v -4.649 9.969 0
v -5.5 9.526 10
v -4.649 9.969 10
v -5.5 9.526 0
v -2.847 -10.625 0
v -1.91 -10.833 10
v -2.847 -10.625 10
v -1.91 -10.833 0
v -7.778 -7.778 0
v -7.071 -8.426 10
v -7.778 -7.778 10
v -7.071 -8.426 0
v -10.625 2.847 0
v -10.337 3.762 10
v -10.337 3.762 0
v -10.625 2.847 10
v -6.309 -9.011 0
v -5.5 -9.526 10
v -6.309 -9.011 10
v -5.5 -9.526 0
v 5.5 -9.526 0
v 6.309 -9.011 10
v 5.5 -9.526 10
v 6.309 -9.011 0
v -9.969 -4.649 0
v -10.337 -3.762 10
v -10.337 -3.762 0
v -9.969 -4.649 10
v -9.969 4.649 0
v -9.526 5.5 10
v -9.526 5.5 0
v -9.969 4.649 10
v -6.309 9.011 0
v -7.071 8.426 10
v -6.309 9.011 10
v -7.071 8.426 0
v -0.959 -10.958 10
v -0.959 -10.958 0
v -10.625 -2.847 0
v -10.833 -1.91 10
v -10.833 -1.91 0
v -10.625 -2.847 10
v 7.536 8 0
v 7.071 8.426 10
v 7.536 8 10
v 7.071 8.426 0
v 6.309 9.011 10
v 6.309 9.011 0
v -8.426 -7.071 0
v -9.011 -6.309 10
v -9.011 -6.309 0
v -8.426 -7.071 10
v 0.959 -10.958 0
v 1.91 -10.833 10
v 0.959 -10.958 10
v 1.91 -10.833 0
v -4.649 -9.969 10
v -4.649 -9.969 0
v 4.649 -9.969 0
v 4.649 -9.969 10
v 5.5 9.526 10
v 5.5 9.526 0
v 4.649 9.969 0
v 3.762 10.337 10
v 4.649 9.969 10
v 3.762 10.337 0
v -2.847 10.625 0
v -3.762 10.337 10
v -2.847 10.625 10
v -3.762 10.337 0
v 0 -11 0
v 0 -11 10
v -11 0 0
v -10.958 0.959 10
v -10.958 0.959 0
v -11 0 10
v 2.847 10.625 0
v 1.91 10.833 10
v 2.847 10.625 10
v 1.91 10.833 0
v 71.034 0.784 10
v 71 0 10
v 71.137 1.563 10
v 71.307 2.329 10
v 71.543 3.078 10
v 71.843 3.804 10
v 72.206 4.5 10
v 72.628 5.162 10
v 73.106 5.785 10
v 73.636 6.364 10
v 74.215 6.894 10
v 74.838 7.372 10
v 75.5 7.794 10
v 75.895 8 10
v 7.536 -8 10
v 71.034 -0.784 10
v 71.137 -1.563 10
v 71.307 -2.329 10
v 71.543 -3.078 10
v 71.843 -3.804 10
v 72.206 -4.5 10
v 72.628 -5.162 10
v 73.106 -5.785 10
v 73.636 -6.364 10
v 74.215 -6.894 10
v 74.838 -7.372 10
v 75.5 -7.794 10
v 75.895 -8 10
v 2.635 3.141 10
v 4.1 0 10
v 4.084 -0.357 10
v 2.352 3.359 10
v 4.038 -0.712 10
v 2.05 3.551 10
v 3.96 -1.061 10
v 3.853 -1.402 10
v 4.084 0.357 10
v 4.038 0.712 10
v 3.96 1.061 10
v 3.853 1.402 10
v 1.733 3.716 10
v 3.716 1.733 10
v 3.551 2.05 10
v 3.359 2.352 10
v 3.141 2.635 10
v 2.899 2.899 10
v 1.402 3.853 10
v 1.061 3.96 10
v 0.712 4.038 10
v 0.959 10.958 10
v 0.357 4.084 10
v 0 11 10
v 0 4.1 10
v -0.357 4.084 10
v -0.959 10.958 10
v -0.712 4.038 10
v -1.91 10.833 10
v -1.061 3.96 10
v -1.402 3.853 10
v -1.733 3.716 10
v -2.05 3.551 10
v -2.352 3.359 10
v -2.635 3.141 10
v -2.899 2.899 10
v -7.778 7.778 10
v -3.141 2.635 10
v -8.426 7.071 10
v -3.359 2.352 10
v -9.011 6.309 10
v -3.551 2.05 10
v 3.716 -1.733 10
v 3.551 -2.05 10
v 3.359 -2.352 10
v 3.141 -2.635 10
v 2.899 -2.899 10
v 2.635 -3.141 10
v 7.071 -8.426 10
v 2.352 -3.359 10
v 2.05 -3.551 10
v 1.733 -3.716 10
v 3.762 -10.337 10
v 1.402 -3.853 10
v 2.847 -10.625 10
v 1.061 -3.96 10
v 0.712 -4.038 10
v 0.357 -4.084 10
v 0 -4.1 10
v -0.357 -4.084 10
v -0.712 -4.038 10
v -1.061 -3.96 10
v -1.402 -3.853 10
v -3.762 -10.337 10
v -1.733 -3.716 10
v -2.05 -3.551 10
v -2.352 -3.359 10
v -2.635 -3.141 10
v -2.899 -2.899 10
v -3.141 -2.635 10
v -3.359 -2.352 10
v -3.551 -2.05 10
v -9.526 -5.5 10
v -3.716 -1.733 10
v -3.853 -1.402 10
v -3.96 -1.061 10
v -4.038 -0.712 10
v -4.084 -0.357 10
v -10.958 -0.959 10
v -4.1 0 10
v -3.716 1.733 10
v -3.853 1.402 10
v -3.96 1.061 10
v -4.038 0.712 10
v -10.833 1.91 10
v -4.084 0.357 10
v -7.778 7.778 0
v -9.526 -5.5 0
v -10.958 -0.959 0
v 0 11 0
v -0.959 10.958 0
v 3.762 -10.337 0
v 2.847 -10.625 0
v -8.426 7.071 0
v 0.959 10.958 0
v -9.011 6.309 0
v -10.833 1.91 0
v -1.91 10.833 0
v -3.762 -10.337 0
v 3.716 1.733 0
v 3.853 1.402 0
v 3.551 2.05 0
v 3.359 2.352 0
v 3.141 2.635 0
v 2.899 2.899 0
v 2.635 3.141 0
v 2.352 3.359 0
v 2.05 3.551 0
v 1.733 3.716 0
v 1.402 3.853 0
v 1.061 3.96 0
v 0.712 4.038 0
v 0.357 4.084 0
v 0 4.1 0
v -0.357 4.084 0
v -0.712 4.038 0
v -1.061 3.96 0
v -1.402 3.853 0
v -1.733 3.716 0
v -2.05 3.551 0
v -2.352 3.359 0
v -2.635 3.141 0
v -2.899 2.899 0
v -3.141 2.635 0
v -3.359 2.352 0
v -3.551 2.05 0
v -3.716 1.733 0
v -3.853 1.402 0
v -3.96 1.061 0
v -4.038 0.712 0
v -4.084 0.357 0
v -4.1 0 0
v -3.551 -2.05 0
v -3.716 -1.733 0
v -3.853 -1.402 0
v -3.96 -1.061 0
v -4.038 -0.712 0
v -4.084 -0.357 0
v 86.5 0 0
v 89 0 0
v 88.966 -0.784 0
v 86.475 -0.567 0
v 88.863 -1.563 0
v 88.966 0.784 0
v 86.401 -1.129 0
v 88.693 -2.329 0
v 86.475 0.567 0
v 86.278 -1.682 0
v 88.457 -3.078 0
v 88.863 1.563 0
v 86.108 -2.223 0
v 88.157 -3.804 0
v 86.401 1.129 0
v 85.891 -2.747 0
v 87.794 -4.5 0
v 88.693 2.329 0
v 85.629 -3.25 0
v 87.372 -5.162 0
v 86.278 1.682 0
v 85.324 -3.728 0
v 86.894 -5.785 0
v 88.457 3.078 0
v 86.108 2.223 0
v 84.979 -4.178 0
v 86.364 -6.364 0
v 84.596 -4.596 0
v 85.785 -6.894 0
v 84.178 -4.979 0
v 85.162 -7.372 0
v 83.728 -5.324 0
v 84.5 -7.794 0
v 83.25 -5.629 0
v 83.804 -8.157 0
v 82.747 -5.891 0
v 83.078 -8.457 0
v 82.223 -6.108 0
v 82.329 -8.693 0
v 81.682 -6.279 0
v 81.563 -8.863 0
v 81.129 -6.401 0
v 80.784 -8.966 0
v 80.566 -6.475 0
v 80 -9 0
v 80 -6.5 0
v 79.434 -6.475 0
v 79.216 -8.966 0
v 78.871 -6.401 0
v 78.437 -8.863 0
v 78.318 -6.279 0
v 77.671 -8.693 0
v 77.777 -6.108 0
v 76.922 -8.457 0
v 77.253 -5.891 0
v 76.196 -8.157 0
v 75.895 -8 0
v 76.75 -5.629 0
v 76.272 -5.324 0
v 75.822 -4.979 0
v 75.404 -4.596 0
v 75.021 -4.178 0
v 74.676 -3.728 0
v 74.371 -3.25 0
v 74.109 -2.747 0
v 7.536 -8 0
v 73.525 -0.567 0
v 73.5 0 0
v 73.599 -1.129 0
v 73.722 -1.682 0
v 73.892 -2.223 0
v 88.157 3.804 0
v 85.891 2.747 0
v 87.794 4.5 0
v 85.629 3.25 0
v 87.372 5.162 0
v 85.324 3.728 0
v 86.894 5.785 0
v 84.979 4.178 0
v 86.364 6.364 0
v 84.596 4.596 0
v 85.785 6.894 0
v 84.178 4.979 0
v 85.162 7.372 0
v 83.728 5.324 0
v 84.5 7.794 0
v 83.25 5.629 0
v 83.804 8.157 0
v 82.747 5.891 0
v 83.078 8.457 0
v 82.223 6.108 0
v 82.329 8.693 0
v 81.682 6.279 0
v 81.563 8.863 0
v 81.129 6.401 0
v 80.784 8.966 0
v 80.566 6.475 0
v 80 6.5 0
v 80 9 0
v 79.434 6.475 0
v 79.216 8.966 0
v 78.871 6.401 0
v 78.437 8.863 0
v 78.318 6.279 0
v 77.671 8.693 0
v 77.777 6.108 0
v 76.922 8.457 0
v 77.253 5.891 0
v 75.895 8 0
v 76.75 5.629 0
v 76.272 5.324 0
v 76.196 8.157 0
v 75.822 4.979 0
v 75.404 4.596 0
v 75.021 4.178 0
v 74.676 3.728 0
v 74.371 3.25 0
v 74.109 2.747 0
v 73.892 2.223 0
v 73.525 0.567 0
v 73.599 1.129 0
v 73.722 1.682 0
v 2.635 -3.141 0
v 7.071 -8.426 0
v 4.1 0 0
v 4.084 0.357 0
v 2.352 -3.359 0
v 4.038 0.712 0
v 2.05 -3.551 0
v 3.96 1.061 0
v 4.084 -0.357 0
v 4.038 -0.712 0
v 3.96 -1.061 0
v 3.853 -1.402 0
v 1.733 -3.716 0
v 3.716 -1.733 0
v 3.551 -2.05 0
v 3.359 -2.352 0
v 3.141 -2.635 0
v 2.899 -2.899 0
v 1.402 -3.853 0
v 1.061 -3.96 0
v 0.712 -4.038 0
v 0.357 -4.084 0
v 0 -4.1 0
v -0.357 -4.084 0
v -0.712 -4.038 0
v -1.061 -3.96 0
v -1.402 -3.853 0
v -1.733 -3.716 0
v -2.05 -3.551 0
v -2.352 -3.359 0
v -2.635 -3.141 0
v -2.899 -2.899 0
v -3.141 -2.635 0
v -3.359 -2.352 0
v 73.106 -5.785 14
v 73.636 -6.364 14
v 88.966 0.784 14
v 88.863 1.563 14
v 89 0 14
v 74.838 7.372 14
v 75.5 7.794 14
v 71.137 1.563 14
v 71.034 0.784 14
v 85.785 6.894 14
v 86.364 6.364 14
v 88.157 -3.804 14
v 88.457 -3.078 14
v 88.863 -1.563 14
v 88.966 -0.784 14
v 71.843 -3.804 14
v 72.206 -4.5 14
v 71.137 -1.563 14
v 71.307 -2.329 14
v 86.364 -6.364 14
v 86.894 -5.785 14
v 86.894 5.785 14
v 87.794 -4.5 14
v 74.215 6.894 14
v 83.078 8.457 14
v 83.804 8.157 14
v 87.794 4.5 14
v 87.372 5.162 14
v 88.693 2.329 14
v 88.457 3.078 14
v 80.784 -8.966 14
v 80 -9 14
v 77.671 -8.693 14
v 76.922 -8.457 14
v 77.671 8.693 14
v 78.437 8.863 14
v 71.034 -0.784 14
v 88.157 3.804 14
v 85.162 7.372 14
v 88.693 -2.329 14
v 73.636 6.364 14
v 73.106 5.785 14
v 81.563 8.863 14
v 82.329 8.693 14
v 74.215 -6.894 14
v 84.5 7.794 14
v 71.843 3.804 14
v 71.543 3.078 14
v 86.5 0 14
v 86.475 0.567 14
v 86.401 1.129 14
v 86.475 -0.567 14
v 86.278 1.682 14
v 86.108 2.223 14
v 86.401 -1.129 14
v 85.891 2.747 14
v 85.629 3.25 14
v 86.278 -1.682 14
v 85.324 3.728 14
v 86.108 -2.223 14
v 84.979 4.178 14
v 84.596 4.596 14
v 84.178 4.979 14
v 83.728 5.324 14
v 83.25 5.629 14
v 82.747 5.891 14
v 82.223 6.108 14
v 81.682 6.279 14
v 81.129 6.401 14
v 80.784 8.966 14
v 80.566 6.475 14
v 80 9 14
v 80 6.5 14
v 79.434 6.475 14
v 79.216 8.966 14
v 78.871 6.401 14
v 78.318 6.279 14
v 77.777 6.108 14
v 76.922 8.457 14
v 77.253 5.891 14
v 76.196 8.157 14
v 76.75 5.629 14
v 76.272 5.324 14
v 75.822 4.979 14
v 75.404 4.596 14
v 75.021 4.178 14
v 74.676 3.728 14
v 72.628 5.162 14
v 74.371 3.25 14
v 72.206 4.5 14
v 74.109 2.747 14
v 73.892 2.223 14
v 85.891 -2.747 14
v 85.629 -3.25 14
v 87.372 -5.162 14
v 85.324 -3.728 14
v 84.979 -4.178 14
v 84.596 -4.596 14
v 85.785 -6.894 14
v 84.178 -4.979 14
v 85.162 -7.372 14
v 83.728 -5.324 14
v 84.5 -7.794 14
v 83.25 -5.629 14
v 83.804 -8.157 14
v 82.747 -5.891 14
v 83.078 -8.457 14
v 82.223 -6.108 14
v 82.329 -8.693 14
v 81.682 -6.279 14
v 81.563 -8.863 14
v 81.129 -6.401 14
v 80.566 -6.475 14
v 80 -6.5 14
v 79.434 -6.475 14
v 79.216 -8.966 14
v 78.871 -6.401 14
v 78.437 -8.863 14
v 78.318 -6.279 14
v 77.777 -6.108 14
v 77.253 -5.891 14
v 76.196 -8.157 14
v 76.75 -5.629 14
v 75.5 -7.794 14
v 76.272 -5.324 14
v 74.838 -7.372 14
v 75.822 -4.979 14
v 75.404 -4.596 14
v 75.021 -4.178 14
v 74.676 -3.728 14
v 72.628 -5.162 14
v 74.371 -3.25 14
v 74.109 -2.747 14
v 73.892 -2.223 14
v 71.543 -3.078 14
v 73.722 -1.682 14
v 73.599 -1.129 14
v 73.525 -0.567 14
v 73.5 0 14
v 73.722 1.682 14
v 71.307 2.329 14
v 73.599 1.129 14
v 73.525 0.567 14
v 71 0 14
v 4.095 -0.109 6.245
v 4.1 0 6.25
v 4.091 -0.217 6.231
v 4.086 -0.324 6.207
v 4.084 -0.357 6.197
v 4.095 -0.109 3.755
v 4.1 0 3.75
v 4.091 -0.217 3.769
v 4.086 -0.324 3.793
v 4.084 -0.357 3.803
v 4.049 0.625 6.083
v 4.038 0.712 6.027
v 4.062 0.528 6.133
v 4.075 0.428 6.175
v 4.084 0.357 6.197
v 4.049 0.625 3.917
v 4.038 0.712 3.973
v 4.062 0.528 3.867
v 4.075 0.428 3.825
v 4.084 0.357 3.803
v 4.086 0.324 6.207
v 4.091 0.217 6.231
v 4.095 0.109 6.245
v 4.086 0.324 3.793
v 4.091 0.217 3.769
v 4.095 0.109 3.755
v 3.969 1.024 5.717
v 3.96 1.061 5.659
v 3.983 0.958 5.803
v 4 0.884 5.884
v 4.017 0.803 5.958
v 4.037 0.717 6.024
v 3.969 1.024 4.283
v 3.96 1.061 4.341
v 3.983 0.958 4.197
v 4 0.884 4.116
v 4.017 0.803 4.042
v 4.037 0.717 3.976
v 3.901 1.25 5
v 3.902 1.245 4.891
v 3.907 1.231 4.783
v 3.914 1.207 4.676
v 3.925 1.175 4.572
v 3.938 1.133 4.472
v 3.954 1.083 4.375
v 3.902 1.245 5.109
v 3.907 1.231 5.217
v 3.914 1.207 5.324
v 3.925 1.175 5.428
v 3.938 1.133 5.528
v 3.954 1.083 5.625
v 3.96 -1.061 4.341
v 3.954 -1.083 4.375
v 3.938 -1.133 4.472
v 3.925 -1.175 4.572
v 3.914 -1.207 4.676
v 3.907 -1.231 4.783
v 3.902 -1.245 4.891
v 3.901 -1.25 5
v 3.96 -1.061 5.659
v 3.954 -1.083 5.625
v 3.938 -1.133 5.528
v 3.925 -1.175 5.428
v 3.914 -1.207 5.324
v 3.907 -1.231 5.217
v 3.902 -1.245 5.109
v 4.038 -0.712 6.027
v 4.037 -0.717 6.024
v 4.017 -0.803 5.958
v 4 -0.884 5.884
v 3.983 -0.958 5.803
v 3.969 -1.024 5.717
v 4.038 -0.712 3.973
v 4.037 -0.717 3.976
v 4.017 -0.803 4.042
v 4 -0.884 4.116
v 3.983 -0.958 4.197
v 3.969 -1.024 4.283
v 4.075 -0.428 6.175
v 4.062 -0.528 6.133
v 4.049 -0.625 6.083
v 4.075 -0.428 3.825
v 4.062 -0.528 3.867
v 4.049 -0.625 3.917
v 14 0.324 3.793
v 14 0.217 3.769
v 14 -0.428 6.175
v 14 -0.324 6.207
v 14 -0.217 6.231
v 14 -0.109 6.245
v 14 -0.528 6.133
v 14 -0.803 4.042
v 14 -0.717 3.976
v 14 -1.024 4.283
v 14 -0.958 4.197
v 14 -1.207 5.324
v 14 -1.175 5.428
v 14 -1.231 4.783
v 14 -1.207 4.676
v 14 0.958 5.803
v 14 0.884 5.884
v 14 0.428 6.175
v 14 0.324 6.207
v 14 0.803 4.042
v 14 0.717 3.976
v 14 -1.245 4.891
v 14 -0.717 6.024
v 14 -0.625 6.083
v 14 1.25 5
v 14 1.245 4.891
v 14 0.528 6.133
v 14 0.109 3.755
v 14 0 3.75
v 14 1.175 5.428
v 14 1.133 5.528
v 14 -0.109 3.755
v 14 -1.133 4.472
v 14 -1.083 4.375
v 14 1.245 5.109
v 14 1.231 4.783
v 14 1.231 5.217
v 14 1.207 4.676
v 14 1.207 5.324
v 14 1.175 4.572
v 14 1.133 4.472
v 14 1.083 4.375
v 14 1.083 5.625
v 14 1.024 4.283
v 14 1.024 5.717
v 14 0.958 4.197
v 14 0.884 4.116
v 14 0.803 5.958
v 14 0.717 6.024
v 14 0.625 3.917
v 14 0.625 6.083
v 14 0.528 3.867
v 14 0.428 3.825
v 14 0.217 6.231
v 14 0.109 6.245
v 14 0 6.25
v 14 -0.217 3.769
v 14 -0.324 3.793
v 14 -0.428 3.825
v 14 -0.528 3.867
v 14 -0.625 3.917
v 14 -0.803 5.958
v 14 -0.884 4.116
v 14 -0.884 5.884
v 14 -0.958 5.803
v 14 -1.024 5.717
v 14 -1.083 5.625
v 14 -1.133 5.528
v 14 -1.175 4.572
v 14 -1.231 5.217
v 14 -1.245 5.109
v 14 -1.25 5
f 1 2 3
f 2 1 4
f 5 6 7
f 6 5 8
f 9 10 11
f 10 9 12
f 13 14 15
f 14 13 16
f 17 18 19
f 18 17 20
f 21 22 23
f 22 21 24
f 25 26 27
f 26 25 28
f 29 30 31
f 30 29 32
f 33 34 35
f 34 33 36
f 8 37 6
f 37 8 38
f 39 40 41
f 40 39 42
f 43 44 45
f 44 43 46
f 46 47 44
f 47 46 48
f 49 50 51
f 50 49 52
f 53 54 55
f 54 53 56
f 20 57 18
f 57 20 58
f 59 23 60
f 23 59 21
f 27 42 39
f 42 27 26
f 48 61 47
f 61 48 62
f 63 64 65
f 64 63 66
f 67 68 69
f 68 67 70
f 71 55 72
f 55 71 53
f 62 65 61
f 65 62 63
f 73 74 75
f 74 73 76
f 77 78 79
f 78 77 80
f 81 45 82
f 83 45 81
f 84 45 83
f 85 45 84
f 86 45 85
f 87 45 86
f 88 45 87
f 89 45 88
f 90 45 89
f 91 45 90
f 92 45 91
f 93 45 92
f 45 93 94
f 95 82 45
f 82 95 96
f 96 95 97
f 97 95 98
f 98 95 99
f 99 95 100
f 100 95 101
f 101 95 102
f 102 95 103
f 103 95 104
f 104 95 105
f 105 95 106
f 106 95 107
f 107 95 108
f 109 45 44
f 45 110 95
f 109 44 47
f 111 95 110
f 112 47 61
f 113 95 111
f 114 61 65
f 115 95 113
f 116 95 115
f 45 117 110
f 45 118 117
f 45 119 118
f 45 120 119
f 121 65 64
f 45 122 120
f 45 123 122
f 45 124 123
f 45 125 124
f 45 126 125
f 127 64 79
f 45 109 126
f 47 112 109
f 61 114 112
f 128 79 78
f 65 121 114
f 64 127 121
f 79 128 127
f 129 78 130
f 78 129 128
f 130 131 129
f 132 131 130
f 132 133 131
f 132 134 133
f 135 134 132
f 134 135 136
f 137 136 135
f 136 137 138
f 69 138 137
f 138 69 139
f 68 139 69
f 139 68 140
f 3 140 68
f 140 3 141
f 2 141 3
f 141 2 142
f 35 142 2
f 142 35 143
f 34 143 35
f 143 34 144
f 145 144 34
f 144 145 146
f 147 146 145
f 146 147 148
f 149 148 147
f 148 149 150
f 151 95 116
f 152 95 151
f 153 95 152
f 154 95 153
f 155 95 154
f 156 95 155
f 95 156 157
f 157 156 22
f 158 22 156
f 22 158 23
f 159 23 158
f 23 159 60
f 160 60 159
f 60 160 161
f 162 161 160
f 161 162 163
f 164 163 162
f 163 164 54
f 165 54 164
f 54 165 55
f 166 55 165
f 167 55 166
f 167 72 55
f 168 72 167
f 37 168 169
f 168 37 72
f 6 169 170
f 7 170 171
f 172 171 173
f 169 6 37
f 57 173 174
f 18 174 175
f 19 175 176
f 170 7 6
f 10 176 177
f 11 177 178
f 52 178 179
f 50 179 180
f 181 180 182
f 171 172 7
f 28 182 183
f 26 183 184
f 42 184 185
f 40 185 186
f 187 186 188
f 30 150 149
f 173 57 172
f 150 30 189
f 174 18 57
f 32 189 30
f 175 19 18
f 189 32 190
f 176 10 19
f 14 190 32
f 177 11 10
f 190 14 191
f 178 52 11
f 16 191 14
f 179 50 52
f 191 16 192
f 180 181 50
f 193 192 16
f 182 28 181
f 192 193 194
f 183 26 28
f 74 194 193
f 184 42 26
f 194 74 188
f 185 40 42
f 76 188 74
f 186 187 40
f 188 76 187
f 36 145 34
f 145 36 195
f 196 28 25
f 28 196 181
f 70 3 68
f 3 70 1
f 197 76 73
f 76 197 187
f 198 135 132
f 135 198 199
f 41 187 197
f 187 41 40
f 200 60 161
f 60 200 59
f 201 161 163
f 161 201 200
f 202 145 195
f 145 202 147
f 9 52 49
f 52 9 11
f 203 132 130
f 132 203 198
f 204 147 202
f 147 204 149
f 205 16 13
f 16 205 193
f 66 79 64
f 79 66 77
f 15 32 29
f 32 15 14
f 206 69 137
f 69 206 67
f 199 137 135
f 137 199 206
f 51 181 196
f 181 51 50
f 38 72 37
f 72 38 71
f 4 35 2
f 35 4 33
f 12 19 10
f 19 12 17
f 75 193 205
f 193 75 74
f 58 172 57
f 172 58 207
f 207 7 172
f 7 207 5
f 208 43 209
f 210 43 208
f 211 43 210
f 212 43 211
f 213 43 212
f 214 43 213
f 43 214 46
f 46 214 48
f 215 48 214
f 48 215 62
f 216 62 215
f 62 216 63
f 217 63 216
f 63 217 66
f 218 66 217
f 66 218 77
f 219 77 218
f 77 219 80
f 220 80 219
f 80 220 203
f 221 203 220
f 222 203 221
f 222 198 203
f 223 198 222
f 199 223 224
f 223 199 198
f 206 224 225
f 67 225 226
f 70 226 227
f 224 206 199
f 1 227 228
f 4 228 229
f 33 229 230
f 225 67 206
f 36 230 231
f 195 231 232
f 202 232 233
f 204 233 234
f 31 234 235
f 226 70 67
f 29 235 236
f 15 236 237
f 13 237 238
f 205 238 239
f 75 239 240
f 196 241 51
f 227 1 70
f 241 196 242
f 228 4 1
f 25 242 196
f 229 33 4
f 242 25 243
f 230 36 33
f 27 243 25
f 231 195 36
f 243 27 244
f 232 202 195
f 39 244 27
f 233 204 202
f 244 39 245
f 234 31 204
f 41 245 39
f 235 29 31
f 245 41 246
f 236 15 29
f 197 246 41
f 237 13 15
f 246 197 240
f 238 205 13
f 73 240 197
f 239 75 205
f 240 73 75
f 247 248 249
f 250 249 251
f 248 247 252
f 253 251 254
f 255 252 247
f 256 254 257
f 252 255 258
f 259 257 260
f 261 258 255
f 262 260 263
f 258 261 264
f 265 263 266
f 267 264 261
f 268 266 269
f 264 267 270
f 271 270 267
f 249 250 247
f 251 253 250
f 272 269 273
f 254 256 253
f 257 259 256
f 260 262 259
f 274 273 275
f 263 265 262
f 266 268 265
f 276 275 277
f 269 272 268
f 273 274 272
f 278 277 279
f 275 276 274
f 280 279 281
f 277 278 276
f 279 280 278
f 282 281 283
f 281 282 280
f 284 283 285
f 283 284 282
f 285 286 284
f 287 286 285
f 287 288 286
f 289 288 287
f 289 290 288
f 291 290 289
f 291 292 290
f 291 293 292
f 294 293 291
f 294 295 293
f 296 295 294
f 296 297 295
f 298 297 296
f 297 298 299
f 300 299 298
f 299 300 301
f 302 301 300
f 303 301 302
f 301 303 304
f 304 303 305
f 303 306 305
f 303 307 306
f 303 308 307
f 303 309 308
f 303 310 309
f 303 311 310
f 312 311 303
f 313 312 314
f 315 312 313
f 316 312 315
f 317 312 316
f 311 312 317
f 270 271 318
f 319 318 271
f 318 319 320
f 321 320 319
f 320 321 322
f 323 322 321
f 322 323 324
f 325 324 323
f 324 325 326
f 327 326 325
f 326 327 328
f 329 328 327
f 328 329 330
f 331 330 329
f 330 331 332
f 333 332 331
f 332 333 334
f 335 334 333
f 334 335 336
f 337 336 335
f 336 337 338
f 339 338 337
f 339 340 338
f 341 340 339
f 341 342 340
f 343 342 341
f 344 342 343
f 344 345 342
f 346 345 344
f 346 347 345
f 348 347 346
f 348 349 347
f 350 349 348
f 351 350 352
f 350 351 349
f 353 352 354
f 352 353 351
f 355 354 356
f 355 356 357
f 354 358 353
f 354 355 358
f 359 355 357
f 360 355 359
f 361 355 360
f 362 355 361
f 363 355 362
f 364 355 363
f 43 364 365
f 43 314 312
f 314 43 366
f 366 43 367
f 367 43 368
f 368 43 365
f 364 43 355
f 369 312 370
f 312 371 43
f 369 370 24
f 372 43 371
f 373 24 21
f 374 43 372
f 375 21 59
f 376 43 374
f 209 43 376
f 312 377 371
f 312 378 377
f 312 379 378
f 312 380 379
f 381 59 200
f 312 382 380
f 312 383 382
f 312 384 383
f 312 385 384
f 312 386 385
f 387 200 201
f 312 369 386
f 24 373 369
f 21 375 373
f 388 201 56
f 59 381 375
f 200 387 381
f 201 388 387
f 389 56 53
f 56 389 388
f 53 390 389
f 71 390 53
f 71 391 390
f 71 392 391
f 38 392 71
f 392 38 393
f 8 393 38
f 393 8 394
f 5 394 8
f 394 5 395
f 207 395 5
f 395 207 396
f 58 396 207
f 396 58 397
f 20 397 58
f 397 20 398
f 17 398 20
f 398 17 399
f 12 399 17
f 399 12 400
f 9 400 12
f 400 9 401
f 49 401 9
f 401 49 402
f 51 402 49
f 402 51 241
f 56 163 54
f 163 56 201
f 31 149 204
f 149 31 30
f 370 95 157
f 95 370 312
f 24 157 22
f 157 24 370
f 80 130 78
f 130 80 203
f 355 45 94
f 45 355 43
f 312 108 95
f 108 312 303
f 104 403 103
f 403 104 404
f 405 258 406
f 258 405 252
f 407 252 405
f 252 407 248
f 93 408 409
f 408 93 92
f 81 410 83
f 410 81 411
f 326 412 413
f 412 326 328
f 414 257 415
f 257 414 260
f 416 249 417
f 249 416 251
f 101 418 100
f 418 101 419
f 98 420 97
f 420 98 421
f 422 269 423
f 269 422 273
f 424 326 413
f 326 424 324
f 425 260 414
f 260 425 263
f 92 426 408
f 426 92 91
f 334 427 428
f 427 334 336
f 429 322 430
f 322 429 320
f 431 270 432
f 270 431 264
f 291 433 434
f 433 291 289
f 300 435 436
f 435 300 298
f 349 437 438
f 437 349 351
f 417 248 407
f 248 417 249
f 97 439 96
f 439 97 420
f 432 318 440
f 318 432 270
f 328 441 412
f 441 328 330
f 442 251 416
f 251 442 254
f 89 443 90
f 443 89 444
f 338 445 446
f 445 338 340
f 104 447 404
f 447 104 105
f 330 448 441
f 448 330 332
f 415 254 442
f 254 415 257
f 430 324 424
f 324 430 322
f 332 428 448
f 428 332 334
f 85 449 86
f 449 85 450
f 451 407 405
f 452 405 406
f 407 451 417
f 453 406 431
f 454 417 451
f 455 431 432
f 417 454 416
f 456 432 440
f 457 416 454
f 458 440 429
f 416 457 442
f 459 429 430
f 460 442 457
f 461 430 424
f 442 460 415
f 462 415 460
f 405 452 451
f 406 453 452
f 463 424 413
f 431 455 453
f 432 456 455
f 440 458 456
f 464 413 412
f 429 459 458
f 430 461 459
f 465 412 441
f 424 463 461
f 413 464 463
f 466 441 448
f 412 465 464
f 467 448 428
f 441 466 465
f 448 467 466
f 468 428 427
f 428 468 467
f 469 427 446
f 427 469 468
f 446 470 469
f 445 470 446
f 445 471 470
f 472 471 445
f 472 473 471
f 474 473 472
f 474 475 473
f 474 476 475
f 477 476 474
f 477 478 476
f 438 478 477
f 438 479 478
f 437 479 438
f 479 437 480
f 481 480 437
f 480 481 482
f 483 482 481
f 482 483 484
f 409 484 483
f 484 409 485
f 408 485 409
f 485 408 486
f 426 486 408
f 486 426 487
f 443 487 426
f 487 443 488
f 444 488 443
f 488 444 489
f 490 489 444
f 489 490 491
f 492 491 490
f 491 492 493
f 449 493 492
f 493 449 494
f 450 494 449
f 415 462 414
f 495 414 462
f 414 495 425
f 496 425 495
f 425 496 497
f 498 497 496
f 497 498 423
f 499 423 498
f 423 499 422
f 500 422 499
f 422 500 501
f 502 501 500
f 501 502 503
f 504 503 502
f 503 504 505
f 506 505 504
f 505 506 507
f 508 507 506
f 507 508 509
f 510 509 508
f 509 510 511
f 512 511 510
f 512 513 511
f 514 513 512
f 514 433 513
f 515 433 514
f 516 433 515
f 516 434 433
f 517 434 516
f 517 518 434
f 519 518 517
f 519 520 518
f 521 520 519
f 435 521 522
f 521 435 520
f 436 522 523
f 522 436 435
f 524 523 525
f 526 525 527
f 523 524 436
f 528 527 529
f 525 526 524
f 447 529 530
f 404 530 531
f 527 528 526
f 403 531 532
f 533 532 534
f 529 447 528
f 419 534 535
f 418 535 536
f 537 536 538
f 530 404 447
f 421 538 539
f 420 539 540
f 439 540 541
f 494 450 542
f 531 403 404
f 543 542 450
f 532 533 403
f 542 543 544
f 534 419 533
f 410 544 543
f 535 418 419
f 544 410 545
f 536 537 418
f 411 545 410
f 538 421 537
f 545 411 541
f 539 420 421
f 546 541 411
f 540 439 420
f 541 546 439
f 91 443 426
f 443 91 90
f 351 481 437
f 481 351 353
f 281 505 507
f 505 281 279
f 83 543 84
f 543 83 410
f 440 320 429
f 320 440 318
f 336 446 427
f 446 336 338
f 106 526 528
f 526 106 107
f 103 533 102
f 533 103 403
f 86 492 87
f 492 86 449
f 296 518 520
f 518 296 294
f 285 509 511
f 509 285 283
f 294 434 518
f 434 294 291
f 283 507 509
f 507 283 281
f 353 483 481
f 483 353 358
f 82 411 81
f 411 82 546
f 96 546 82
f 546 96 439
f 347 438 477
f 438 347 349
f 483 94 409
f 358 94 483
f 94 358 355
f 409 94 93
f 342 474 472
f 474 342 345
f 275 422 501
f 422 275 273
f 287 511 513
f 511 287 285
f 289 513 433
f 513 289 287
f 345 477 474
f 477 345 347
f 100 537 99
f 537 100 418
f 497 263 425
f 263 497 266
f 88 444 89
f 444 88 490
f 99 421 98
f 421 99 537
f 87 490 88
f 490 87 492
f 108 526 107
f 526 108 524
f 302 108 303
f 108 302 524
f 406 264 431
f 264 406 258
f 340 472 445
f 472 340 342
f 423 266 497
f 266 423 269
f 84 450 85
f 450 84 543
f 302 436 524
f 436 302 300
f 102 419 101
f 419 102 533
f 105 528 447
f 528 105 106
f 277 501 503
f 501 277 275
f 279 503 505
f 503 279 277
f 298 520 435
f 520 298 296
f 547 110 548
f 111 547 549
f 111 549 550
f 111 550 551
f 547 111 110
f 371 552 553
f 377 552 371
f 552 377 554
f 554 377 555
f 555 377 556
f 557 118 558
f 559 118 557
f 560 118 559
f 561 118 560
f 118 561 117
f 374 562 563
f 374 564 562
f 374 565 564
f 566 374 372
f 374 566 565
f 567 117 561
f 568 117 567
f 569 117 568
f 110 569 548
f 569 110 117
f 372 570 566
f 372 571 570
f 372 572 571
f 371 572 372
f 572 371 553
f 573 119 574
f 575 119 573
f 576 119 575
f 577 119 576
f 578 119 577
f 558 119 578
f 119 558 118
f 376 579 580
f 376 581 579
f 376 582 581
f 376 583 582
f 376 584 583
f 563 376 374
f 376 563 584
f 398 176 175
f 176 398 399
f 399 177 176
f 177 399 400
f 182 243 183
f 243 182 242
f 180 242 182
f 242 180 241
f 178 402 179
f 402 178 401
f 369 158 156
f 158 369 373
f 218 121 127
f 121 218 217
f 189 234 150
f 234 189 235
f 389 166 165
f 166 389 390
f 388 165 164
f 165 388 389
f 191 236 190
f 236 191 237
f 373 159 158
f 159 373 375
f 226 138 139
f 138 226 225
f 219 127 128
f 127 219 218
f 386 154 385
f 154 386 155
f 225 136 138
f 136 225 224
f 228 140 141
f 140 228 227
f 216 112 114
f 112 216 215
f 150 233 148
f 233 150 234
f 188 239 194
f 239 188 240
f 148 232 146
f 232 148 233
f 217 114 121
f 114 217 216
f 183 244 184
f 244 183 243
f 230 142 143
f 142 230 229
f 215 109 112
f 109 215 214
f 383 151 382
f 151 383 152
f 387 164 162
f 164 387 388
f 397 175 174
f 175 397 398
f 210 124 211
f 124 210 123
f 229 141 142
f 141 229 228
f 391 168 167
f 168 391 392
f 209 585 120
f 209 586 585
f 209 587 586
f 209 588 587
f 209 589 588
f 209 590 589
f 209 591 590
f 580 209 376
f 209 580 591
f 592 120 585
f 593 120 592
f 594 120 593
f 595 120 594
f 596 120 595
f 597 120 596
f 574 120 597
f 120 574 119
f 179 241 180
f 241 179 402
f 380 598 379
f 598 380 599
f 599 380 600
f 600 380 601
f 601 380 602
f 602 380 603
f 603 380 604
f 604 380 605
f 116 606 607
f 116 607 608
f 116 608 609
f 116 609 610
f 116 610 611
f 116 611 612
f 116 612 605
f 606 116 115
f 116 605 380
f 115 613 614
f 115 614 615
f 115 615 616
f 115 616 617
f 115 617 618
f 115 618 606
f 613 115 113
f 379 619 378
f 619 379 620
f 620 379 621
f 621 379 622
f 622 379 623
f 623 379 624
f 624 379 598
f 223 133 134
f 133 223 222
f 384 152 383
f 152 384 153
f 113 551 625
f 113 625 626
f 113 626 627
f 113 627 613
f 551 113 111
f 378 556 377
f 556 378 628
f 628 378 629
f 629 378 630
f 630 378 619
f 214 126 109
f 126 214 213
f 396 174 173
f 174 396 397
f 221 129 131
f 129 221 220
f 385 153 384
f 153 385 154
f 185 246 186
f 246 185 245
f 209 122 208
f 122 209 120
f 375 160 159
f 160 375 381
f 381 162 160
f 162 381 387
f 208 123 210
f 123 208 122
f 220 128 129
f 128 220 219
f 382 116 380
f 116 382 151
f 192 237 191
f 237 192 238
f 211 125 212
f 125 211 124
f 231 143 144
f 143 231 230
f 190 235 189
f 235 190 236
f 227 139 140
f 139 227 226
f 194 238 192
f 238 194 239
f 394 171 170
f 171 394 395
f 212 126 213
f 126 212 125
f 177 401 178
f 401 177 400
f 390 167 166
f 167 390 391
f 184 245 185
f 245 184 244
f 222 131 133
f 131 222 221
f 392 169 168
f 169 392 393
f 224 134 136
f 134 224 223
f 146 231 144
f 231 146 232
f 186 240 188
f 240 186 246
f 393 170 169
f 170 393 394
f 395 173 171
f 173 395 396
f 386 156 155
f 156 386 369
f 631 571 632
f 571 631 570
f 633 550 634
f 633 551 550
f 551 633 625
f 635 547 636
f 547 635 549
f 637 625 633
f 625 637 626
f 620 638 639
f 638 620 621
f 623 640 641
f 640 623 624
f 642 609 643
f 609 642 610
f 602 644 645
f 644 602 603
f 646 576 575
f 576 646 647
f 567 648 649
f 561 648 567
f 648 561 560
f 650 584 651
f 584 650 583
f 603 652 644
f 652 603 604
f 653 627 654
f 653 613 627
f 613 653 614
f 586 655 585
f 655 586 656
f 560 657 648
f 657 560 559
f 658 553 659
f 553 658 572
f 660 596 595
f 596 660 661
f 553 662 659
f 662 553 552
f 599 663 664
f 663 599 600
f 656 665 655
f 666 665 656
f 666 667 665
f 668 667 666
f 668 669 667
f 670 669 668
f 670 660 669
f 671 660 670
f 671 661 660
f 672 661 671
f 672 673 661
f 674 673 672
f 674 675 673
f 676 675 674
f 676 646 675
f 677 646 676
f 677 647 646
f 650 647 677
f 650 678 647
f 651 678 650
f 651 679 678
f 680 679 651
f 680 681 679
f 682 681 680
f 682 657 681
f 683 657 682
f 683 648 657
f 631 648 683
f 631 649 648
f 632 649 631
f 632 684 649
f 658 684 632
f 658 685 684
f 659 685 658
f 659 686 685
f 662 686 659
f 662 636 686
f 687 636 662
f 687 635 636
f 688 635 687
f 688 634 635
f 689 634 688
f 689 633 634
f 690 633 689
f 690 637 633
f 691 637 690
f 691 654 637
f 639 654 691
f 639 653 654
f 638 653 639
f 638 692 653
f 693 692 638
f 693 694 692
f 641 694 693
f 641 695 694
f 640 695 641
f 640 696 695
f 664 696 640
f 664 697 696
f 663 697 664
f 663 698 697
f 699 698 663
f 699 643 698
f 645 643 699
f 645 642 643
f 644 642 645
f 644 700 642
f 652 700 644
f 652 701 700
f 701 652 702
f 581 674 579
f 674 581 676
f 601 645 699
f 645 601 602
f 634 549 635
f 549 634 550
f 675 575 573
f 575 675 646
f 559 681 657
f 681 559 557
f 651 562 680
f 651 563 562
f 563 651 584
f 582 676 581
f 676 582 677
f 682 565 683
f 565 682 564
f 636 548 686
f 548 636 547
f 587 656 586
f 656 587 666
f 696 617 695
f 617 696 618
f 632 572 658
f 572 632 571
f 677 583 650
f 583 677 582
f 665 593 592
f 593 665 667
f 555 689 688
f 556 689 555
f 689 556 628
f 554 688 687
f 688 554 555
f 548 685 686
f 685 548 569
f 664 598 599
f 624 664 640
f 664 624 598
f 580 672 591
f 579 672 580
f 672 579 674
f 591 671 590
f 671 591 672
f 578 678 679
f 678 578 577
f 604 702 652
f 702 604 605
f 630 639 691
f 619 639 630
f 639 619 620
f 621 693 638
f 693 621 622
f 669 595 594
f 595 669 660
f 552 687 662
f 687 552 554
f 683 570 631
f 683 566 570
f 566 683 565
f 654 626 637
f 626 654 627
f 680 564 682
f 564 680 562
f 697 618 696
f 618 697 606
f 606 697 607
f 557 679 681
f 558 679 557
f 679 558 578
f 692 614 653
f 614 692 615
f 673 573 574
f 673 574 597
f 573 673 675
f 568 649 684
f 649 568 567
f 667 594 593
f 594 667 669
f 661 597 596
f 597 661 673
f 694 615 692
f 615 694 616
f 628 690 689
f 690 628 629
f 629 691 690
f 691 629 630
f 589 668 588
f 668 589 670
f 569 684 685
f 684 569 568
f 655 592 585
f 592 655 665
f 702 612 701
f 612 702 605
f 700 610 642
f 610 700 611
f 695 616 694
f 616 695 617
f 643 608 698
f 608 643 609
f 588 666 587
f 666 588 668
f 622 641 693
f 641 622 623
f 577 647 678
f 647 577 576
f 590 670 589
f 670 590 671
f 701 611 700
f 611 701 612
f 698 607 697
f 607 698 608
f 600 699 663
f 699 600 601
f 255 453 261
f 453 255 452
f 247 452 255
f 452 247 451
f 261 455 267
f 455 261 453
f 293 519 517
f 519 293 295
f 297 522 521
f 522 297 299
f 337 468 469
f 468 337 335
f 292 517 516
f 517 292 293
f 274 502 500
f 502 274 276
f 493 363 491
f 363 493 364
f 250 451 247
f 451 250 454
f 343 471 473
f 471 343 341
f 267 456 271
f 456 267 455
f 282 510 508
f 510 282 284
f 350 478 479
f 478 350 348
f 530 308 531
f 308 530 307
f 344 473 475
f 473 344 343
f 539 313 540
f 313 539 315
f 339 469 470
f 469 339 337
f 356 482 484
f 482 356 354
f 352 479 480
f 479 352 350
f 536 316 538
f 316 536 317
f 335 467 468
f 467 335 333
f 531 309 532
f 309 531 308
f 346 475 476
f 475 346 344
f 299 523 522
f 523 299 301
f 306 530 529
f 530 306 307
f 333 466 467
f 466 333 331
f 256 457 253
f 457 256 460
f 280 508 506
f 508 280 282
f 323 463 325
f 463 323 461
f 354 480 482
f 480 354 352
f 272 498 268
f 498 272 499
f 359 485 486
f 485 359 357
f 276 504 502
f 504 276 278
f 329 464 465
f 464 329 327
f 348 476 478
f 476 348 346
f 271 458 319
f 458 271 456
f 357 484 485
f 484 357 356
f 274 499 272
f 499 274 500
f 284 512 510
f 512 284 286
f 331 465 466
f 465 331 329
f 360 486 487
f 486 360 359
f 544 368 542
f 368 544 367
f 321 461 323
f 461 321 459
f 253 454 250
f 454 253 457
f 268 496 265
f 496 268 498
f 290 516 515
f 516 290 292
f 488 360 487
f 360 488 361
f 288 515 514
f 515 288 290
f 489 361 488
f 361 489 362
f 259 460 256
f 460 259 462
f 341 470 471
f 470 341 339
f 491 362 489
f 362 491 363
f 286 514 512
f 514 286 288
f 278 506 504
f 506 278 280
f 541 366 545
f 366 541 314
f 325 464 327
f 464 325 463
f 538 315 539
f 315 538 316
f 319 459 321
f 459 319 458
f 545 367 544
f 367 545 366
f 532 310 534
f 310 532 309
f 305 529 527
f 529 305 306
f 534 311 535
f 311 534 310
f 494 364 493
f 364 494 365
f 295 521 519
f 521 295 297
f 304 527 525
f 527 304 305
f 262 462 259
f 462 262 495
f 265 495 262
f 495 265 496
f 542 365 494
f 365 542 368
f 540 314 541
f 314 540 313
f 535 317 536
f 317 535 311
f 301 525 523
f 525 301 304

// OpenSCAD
// file: parameters.scad
// Coax Faraday Generator Experiments v3 — shared parameters (mm)
// Three-layer coaxial: outer magnets + coil stator + inner magnets
// Orthodox Faraday only — mechanical → electrical. No overunity.
// Target: Anycubic Kobra 3 Max, 0.4 mm nozzle, 0.2 mm layers, PETG preferred.

$fn = 72;

// --- Printer / FDM ---
nozzle = 0.4;
layer = 0.2;
wall = 2.0;                 // ≥2 mm walls on drums
housing_wall = 2.4;
clearance_slip = 0.35;
press_interference = 0.15;  // 608 seat undersize total (~0.1–0.2)
magnet_pocket_xy = 0.25;    // +0.25 mm on diameter (within +0.2–0.3)
magnet_pocket_z = 0.15;     // +0.15 mm depth (within +0.1–0.2)

// --- Magnets (ASSUMPTION: Ø20×5 mm N42 axial discs, not bar stock) ---
magnet_d = 20;
magnet_h = 5;
pole_count = 8;             // alternating N/S around circumference

// --- Radial stack (from axis) ---
// Inner magnet FACE at r=33; magnets 5 mm thick → pocket floor at 33-5=28
r_inner_face = 33;
air_gap = 2.0;              // each side (1–3 mm sweep; nominal 2)
coil_radial = 9.0;          // winding depth
r_coil_inner = r_inner_face + air_gap;          // 35
r_coil_outer = r_coil_inner + coil_radial;      // 44
r_outer_face = r_coil_outer + air_gap;          // 46
// Outer magnet pocket floor (further out): face + thickness
r_outer_floor = r_outer_face + magnet_h;        // 51

inner_drum_od = 2 * (r_inner_face);             // face OD before pockets nuance
inner_drum_core_r = r_inner_face - magnet_h;    // 28
outer_drum_id = 2 * r_outer_face;               // clear to faces
outer_drum_od = 2 * (r_outer_floor + wall);     // ~106

axial_magnet = 22;          // pocket axial span (~magnet_d + margin)
coil_axial = 24;
drum_axial = 28;            // outer/inner drum barrel length

// --- Shaft / bearings 608-2RS ---
shaft_d = 8;
bearing_od = 22;
bearing_id = 8;
bearing_h = 7;
bearing_seat_od = bearing_od - press_interference; // ~21.85

// --- Base ---
base_w = 160;
base_d = 140;
base_h = 8;
post_h = 70;
post_spacing = 100;         // bearing center distance along shaft axis (Y)
post_d = 36;

// --- Crank ---
crank_arm_len = 80;
crank_arm_w = 16;
crank_arm_t = 10;
handle_d = 14;
handle_len = 40;

// --- Fasteners ---
m3_clear = 3.4;
m3_tap = 2.5;
m4_clear = 4.3;
// main file
include <parameters.scad>

module hand_crank() {
    difference() {
        union() {
            // Hub
            cylinder(h = crank_arm_t, d = 22);
            // Arm
            translate([0, -crank_arm_w / 2, 0])
                cube([crank_arm_len, crank_arm_w, crank_arm_t]);
            // Handle boss
            translate([crank_arm_len, 0, 0])
                cylinder(h = crank_arm_t + 4, d = handle_d + 4);
        }
        // Shaft bore
        translate([0, 0, -0.1])
            cylinder(h = crank_arm_t + 0.2, d = shaft_d + 0.2);
        // Set screw
        translate([0, 0, crank_arm_t / 2]) rotate([0, 90, 0])
            cylinder(h = 14, d = m3_tap);
        // Handle hole (dowel / printed pin)
        translate([crank_arm_len, 0, -0.1])
            cylinder(h = crank_arm_t + 4.2, d = handle_d - 1);
    }
}
hand_crank();
